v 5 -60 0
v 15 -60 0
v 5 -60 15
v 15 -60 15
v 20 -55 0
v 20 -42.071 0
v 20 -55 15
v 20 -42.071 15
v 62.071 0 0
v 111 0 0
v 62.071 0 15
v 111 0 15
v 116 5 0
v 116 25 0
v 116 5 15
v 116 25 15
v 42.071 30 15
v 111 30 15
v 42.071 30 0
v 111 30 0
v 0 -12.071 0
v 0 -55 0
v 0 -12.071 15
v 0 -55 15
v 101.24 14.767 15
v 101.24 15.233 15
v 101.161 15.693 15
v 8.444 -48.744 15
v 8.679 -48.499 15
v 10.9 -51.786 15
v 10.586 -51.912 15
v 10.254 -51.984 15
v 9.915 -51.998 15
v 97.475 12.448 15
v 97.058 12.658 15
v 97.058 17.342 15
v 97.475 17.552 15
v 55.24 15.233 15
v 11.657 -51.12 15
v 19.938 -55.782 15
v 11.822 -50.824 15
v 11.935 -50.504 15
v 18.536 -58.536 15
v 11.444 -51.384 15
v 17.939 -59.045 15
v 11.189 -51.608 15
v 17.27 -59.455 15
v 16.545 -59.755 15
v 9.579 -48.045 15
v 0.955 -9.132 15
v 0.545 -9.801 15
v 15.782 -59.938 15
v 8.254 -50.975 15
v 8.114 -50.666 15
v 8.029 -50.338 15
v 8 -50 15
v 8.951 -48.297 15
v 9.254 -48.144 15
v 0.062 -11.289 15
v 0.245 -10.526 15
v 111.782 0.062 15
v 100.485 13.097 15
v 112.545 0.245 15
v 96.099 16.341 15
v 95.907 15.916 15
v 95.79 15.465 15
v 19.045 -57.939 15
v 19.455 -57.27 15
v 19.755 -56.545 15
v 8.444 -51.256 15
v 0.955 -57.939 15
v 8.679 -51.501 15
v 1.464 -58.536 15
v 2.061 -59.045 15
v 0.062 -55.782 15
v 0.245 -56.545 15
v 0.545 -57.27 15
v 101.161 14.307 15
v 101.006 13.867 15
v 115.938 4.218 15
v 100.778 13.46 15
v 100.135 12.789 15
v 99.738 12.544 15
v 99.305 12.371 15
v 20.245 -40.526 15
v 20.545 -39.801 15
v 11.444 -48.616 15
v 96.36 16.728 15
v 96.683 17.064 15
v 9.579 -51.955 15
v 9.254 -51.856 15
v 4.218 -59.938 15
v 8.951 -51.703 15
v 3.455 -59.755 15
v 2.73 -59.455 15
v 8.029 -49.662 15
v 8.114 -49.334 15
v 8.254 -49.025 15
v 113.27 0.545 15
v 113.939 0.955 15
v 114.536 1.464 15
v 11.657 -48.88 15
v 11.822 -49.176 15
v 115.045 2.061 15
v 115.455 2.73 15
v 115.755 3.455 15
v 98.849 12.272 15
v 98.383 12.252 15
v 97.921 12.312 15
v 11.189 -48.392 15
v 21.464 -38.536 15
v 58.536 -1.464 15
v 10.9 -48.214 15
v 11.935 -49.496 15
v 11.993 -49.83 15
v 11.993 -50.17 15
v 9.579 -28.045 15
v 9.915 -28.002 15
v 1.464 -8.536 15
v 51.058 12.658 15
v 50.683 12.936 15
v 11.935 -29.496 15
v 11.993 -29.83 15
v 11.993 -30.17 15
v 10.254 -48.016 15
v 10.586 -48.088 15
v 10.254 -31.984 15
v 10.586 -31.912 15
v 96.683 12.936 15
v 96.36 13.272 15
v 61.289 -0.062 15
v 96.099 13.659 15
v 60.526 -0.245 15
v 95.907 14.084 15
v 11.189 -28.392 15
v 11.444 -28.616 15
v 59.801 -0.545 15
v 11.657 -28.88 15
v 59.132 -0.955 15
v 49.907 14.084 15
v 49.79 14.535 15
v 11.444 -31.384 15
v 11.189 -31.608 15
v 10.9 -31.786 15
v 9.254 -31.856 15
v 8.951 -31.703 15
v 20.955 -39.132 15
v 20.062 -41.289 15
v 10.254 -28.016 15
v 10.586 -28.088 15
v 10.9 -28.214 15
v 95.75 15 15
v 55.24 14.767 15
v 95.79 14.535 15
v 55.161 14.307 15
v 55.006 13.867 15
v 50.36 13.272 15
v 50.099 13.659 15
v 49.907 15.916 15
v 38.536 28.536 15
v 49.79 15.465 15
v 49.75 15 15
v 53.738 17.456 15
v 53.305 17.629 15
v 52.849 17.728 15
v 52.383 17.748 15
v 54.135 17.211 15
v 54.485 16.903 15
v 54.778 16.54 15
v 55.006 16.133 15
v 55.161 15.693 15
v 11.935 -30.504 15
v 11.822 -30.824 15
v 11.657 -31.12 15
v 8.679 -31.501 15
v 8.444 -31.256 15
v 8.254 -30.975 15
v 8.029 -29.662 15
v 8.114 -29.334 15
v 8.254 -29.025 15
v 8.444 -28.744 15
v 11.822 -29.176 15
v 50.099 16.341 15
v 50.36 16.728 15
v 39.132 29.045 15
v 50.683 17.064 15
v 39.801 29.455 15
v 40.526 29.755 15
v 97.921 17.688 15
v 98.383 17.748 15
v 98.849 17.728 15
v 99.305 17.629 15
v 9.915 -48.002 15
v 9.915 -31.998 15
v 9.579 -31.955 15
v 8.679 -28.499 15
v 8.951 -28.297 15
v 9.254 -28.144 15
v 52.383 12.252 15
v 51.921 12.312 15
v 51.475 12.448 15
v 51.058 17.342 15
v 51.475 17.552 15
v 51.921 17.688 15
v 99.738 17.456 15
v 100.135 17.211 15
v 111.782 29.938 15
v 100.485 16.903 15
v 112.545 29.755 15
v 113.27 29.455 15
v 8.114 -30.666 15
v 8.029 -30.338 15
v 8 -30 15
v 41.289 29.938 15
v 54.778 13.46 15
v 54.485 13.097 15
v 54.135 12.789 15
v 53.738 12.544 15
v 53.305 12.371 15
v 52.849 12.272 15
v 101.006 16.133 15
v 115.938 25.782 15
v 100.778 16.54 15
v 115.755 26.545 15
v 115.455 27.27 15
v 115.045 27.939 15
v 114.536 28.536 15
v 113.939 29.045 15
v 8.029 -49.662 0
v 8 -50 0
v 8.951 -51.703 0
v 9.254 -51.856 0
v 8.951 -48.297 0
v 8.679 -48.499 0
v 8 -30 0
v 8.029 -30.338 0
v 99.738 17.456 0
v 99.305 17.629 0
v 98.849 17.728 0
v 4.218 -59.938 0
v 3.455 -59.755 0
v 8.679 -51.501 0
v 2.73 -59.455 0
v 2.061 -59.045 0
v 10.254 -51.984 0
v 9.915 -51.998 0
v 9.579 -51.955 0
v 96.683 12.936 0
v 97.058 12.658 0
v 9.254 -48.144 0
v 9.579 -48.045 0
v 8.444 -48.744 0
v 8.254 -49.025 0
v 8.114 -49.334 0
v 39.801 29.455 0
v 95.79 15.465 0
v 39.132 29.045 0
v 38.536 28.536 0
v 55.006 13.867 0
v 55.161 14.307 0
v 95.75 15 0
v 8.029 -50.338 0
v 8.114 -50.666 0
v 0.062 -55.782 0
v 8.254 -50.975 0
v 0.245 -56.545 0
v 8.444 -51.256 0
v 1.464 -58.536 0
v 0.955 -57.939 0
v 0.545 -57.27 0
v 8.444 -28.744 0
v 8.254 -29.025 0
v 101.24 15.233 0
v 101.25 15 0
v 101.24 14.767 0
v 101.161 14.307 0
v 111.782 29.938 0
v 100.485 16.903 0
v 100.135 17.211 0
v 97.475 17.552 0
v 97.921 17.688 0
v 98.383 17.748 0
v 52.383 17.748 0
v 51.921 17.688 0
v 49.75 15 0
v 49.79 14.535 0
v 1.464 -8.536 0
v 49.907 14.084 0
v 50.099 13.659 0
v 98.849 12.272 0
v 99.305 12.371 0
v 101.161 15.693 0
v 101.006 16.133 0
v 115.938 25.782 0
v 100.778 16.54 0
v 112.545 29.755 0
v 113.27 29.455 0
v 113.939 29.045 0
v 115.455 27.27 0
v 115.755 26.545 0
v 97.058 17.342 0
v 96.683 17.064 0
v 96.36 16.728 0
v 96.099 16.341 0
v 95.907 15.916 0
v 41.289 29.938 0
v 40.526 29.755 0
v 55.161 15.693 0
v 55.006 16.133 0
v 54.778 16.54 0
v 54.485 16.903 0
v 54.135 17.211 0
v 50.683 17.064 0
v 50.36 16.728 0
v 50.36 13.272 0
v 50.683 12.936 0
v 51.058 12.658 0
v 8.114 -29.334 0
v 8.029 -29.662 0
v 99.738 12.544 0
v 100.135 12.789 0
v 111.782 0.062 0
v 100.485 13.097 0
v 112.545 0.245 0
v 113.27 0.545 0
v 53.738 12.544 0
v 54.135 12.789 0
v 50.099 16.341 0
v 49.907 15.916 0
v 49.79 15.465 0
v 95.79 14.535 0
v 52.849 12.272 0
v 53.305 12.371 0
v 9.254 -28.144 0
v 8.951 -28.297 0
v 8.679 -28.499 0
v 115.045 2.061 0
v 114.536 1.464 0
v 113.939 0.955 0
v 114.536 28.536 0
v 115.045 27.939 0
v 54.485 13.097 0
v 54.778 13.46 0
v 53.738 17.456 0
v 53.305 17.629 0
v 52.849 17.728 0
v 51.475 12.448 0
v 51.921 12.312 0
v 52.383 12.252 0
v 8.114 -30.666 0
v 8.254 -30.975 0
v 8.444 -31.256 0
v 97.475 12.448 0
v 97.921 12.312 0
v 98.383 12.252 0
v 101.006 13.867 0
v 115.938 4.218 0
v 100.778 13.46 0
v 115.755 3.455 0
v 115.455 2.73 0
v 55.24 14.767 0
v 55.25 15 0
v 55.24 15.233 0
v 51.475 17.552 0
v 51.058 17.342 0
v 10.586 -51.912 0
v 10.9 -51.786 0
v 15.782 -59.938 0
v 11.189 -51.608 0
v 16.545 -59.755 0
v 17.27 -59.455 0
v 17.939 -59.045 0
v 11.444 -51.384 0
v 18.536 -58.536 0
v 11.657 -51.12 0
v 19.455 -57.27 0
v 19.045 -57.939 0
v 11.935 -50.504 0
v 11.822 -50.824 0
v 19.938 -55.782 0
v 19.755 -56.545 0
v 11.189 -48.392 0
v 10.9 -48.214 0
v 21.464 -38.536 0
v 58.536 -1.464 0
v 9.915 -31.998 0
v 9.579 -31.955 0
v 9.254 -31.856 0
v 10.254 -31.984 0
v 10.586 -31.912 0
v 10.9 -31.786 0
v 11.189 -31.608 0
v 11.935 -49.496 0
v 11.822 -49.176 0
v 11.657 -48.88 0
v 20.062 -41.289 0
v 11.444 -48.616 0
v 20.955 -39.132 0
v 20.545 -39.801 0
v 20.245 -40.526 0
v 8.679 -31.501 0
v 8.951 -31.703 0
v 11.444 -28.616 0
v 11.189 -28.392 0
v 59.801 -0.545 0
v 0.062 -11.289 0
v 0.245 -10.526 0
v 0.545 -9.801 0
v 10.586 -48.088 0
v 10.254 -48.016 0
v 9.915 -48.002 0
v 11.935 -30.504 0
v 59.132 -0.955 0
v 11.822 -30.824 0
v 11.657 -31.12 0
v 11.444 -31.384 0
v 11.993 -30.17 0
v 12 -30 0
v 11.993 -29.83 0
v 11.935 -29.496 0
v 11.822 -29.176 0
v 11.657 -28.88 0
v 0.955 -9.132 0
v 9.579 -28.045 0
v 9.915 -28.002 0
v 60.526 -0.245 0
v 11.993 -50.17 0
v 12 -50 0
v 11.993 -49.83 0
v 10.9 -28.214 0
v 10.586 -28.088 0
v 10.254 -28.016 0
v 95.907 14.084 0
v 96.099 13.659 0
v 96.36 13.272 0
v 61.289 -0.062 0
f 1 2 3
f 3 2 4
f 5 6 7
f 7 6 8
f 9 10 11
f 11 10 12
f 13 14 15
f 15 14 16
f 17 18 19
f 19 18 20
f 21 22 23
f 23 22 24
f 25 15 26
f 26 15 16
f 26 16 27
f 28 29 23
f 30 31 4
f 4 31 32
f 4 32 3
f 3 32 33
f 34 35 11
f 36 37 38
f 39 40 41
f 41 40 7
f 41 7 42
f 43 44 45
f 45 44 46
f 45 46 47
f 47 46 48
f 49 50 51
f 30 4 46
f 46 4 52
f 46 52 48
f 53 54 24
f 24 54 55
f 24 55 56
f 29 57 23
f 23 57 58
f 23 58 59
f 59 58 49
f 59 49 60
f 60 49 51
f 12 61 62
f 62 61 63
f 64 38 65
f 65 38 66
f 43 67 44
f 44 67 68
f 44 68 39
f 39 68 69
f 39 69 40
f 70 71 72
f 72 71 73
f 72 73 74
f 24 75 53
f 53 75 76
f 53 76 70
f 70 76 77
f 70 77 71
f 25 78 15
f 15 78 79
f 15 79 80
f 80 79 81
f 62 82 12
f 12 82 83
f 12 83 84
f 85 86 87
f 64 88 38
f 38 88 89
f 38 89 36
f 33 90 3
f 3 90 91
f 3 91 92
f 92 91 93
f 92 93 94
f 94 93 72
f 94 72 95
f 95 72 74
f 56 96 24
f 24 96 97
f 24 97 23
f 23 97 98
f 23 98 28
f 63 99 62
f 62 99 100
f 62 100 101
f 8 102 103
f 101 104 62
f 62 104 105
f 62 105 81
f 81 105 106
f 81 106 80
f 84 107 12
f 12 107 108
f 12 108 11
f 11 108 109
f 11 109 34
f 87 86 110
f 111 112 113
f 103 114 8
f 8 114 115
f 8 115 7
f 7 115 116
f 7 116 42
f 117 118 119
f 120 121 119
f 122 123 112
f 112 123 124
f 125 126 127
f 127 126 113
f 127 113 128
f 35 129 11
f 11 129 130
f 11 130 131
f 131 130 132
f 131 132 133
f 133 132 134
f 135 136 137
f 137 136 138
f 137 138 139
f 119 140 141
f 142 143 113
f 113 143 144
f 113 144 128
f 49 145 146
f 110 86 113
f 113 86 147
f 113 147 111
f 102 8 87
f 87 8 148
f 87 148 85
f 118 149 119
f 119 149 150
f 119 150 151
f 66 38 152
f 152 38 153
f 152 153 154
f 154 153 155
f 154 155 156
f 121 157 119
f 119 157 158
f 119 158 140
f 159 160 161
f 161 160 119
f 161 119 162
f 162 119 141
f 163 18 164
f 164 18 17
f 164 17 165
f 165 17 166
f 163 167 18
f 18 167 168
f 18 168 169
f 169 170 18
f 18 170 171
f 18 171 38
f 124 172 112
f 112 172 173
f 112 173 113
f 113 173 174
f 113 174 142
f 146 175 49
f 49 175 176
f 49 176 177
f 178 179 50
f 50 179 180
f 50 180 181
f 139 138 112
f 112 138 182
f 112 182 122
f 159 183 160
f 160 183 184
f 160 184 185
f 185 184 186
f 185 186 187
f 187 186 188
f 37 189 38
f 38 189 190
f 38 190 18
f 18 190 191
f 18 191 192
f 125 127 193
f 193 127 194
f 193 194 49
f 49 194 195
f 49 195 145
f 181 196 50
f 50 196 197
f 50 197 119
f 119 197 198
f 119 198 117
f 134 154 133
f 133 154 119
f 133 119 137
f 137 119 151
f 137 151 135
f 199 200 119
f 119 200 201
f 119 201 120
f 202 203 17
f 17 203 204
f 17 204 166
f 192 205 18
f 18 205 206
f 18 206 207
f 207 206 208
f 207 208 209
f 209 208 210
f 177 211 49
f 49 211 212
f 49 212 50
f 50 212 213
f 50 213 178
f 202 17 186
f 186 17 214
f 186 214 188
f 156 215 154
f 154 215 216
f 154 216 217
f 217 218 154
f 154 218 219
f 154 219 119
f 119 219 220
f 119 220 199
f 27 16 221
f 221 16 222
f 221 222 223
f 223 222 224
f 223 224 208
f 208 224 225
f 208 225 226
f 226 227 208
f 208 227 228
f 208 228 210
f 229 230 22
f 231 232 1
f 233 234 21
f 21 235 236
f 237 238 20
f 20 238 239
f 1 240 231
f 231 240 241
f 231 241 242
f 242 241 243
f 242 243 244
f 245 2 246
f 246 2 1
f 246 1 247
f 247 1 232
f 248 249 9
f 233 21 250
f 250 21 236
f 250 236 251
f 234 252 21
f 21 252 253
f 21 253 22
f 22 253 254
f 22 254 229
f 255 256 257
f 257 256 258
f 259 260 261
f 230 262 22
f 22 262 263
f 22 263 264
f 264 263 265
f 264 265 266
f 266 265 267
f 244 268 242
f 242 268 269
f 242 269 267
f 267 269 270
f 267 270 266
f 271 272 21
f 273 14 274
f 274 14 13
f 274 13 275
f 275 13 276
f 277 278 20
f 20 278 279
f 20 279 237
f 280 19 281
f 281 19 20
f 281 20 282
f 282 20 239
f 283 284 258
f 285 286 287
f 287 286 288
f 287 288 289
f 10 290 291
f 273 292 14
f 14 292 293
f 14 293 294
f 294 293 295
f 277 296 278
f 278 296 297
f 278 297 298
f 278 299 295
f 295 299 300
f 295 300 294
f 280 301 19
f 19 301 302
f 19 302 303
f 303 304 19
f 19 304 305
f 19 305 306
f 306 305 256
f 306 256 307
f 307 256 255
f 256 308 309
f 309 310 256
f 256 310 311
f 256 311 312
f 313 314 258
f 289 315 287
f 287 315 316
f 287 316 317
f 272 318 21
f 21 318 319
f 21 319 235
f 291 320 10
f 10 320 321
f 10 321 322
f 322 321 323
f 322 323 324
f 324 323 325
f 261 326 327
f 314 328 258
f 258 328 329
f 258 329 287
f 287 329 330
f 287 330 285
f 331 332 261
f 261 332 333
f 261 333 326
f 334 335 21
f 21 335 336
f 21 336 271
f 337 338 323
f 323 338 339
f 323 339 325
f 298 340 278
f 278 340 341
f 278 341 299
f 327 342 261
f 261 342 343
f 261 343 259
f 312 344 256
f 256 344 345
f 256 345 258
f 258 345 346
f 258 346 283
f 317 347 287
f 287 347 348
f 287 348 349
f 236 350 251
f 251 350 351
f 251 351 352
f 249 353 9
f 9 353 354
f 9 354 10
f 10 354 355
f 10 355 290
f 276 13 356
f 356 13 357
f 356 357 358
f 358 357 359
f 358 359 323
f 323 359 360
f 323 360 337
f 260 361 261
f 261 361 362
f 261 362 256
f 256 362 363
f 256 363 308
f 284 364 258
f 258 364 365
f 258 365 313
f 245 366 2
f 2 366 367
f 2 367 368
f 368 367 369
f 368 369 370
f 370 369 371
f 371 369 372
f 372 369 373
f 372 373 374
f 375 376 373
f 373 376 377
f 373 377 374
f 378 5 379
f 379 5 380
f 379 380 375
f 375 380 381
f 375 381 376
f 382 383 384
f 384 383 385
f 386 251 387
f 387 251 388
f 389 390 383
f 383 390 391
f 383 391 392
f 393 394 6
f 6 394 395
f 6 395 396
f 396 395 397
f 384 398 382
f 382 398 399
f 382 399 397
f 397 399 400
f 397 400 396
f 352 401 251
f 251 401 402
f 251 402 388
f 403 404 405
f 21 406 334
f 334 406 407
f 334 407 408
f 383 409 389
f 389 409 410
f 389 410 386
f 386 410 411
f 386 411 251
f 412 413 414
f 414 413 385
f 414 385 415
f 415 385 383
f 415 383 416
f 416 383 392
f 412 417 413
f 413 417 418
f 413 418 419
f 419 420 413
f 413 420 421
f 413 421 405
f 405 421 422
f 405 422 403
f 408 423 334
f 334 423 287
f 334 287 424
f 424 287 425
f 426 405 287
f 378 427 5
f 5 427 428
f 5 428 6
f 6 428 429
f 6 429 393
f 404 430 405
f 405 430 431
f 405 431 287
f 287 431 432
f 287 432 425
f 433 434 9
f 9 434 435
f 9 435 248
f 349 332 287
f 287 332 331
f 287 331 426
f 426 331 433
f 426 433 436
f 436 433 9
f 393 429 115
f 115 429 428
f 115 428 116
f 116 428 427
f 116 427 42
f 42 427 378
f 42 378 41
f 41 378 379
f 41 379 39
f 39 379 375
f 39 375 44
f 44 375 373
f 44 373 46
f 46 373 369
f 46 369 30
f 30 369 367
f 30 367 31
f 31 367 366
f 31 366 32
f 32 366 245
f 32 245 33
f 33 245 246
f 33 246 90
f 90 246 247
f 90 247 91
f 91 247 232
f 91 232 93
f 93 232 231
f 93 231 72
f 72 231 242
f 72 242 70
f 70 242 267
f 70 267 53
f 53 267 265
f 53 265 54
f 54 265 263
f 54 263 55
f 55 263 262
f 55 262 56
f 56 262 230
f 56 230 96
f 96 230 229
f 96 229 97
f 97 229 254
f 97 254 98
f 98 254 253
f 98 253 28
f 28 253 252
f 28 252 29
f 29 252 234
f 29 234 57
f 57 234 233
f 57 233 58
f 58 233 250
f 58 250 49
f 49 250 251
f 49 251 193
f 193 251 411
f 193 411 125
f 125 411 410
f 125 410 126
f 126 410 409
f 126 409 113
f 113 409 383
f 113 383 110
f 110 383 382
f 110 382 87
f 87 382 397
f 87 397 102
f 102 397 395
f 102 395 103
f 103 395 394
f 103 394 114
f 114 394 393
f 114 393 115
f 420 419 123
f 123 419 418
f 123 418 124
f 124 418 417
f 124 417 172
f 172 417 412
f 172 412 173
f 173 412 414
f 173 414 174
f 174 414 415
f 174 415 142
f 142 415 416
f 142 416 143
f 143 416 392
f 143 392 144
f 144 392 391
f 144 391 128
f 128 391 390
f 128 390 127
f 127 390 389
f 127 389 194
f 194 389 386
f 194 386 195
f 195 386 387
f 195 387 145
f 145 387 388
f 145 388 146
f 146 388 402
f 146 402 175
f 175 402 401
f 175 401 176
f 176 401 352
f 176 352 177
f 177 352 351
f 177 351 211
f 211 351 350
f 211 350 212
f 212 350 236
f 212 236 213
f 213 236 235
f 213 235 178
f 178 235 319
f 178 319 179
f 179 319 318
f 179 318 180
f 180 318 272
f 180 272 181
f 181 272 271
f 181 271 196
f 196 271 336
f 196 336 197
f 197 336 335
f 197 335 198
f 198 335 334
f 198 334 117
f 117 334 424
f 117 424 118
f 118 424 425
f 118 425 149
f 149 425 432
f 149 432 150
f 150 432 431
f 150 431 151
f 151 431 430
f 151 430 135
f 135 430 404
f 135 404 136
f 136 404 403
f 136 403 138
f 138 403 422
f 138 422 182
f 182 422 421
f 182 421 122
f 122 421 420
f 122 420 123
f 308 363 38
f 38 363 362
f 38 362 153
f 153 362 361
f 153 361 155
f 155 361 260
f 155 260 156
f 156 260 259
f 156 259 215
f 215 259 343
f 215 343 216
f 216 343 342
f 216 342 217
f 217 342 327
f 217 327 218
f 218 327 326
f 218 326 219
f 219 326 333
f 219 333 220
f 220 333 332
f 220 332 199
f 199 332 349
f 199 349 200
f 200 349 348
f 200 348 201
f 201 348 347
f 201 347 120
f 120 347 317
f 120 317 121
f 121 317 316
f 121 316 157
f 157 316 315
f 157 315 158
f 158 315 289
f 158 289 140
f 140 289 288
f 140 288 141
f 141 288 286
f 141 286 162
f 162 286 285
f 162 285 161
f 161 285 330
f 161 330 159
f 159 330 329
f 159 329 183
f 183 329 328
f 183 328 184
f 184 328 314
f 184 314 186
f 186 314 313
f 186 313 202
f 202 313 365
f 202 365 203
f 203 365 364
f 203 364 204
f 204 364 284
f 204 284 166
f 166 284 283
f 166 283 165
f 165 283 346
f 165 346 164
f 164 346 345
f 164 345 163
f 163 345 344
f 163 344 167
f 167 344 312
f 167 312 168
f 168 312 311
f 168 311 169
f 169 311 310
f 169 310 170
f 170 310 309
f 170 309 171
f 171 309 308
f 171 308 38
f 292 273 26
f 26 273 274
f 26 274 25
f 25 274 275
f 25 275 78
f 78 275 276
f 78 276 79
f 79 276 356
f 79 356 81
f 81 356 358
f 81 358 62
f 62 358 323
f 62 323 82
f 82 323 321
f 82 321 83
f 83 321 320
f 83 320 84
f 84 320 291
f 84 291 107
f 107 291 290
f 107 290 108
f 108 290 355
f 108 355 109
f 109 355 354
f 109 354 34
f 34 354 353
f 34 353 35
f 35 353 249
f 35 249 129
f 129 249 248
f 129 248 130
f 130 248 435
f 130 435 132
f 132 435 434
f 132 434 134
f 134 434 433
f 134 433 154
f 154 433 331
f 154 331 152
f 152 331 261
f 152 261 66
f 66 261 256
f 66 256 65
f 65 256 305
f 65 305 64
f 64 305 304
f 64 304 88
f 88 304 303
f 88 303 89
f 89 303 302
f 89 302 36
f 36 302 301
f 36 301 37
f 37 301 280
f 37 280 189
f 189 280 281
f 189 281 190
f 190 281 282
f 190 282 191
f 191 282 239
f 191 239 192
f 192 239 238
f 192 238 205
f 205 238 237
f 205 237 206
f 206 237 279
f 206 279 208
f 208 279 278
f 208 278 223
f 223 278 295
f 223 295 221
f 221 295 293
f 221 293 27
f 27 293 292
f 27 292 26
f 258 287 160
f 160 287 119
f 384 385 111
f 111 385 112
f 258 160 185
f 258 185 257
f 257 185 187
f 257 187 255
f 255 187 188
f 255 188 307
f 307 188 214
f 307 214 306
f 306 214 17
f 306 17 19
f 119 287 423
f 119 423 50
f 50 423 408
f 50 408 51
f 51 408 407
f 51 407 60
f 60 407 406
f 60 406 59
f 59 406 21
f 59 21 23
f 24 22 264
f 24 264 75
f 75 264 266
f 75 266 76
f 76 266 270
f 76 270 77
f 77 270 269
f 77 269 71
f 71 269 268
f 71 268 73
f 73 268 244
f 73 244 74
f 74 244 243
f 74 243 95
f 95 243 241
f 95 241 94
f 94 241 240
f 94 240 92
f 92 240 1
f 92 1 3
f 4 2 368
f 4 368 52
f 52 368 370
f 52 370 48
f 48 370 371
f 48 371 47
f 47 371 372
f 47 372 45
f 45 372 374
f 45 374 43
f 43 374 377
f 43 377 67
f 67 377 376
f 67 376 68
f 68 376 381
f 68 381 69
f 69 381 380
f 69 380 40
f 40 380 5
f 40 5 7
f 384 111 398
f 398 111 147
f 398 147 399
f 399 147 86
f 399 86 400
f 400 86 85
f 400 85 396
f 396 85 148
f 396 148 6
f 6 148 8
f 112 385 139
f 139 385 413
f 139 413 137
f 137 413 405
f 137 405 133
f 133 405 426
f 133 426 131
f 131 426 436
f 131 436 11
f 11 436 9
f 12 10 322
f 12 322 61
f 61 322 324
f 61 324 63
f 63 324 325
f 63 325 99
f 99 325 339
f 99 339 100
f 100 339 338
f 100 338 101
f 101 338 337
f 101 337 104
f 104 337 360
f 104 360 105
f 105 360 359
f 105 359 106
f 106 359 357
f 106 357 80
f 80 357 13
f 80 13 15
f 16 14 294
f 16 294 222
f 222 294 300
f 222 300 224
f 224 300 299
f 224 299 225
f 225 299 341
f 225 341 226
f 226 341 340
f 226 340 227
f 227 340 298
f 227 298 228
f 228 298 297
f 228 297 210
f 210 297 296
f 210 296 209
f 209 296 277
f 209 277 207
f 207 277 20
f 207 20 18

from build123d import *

# Parameters (mm, degrees)
BOSS_EXTRUDE1_DEPTH = 15
CUT_EXTRUDE3_REACH  = 133.457
SKETCH2_R           = 2
SKETCH2_R_2         = 2.75
CHAMFER1_SIZE       = 40
FILLET1_R           = 5


with BuildPart() as part:
    # Sketch1 → Boss-Extrude1 (new body)
    with BuildSketch(Plane.XY):
        Polygon((0, -60), (0, 30), (116, 30), (116, 0), (20, 0), (20, -60), align=None)
    extrude(amount=BOSS_EXTRUDE1_DEPTH)

    # Sketch2 → Cut-Extrude3 (cut, up to next)
    with BuildSketch(Plane.XY, mode=Mode.PRIVATE) as cut_extrude3_sk1:
        with Locations(Location((10, -50, 0), (0, 0, 180))):
            Circle(SKETCH2_R)
    cut_extrude3_tool1 = extrude(cut_extrude3_sk1.sketch, amount=CUT_EXTRUDE3_REACH, mode=Mode.PRIVATE) & part.part
    # Sketch2 → Cut-Extrude3 (cut, up to next)
    with BuildSketch(Plane.XY, mode=Mode.PRIVATE) as cut_extrude3_sk2:
        with Locations(Location((10, -30, 0), (0, 0, 180))):
            Circle(SKETCH2_R)
    cut_extrude3_tool2 = extrude(cut_extrude3_sk2.sketch, amount=CUT_EXTRUDE3_REACH, mode=Mode.PRIVATE) & part.part
    # Sketch2 → Cut-Extrude3 (cut, up to next)
    with BuildSketch(Plane.XY, mode=Mode.PRIVATE) as cut_extrude3_sk3:
        with Locations(Location((52.5, 15, 0), (0, 0, 180))):
            Circle(SKETCH2_R_2)
    cut_extrude3_tool3 = extrude(cut_extrude3_sk3.sketch, amount=CUT_EXTRUDE3_REACH, mode=Mode.PRIVATE) & part.part
    # Sketch2 → Cut-Extrude3 (cut, up to next)
    with BuildSketch(Plane.XY, mode=Mode.PRIVATE) as cut_extrude3_sk4:
        with Locations(Location((98.5, 15, 0), (0, 0, 180))):
            Circle(SKETCH2_R_2)
    cut_extrude3_tool4 = extrude(cut_extrude3_sk4.sketch, amount=CUT_EXTRUDE3_REACH, mode=Mode.PRIVATE) & part.part
    add(cut_extrude3_tool1.solids().sort_by_distance((10, -50, 0))[0], mode=Mode.SUBTRACT)
    add(cut_extrude3_tool2.solids().sort_by_distance((10, -30, 0))[0], mode=Mode.SUBTRACT)
    add(cut_extrude3_tool3.solids().sort_by_distance((52.5, 15, 0))[0], mode=Mode.SUBTRACT)
    add(cut_extrude3_tool4.solids().sort_by_distance((98.5, 15, 0))[0], mode=Mode.SUBTRACT)

    # Chamfer1
    chamfer1_edges = [part.edges().sort_by_distance(p)[0] for p in [
        (0, 30, 7.5),
        (20, 0, 7.5),
    ]]
    chamfer(chamfer1_edges, length=CHAMFER1_SIZE)

    # Fillet1
    fillet1_edges = [part.edges().sort_by_distance(p)[0] for p in [
        (0, -60, 7.5),
        (116, 30, 7.5),
        (116, 0, 7.5),
        (20, -60, 7.5),
        (0, -10, 7.5),
        (40, 30, 7.5),
        (60, 0, 7.5),
        (20, -40, 7.5),
    ]]
    fillet(fillet1_edges, radius=FILLET1_R)


solid = part.part
